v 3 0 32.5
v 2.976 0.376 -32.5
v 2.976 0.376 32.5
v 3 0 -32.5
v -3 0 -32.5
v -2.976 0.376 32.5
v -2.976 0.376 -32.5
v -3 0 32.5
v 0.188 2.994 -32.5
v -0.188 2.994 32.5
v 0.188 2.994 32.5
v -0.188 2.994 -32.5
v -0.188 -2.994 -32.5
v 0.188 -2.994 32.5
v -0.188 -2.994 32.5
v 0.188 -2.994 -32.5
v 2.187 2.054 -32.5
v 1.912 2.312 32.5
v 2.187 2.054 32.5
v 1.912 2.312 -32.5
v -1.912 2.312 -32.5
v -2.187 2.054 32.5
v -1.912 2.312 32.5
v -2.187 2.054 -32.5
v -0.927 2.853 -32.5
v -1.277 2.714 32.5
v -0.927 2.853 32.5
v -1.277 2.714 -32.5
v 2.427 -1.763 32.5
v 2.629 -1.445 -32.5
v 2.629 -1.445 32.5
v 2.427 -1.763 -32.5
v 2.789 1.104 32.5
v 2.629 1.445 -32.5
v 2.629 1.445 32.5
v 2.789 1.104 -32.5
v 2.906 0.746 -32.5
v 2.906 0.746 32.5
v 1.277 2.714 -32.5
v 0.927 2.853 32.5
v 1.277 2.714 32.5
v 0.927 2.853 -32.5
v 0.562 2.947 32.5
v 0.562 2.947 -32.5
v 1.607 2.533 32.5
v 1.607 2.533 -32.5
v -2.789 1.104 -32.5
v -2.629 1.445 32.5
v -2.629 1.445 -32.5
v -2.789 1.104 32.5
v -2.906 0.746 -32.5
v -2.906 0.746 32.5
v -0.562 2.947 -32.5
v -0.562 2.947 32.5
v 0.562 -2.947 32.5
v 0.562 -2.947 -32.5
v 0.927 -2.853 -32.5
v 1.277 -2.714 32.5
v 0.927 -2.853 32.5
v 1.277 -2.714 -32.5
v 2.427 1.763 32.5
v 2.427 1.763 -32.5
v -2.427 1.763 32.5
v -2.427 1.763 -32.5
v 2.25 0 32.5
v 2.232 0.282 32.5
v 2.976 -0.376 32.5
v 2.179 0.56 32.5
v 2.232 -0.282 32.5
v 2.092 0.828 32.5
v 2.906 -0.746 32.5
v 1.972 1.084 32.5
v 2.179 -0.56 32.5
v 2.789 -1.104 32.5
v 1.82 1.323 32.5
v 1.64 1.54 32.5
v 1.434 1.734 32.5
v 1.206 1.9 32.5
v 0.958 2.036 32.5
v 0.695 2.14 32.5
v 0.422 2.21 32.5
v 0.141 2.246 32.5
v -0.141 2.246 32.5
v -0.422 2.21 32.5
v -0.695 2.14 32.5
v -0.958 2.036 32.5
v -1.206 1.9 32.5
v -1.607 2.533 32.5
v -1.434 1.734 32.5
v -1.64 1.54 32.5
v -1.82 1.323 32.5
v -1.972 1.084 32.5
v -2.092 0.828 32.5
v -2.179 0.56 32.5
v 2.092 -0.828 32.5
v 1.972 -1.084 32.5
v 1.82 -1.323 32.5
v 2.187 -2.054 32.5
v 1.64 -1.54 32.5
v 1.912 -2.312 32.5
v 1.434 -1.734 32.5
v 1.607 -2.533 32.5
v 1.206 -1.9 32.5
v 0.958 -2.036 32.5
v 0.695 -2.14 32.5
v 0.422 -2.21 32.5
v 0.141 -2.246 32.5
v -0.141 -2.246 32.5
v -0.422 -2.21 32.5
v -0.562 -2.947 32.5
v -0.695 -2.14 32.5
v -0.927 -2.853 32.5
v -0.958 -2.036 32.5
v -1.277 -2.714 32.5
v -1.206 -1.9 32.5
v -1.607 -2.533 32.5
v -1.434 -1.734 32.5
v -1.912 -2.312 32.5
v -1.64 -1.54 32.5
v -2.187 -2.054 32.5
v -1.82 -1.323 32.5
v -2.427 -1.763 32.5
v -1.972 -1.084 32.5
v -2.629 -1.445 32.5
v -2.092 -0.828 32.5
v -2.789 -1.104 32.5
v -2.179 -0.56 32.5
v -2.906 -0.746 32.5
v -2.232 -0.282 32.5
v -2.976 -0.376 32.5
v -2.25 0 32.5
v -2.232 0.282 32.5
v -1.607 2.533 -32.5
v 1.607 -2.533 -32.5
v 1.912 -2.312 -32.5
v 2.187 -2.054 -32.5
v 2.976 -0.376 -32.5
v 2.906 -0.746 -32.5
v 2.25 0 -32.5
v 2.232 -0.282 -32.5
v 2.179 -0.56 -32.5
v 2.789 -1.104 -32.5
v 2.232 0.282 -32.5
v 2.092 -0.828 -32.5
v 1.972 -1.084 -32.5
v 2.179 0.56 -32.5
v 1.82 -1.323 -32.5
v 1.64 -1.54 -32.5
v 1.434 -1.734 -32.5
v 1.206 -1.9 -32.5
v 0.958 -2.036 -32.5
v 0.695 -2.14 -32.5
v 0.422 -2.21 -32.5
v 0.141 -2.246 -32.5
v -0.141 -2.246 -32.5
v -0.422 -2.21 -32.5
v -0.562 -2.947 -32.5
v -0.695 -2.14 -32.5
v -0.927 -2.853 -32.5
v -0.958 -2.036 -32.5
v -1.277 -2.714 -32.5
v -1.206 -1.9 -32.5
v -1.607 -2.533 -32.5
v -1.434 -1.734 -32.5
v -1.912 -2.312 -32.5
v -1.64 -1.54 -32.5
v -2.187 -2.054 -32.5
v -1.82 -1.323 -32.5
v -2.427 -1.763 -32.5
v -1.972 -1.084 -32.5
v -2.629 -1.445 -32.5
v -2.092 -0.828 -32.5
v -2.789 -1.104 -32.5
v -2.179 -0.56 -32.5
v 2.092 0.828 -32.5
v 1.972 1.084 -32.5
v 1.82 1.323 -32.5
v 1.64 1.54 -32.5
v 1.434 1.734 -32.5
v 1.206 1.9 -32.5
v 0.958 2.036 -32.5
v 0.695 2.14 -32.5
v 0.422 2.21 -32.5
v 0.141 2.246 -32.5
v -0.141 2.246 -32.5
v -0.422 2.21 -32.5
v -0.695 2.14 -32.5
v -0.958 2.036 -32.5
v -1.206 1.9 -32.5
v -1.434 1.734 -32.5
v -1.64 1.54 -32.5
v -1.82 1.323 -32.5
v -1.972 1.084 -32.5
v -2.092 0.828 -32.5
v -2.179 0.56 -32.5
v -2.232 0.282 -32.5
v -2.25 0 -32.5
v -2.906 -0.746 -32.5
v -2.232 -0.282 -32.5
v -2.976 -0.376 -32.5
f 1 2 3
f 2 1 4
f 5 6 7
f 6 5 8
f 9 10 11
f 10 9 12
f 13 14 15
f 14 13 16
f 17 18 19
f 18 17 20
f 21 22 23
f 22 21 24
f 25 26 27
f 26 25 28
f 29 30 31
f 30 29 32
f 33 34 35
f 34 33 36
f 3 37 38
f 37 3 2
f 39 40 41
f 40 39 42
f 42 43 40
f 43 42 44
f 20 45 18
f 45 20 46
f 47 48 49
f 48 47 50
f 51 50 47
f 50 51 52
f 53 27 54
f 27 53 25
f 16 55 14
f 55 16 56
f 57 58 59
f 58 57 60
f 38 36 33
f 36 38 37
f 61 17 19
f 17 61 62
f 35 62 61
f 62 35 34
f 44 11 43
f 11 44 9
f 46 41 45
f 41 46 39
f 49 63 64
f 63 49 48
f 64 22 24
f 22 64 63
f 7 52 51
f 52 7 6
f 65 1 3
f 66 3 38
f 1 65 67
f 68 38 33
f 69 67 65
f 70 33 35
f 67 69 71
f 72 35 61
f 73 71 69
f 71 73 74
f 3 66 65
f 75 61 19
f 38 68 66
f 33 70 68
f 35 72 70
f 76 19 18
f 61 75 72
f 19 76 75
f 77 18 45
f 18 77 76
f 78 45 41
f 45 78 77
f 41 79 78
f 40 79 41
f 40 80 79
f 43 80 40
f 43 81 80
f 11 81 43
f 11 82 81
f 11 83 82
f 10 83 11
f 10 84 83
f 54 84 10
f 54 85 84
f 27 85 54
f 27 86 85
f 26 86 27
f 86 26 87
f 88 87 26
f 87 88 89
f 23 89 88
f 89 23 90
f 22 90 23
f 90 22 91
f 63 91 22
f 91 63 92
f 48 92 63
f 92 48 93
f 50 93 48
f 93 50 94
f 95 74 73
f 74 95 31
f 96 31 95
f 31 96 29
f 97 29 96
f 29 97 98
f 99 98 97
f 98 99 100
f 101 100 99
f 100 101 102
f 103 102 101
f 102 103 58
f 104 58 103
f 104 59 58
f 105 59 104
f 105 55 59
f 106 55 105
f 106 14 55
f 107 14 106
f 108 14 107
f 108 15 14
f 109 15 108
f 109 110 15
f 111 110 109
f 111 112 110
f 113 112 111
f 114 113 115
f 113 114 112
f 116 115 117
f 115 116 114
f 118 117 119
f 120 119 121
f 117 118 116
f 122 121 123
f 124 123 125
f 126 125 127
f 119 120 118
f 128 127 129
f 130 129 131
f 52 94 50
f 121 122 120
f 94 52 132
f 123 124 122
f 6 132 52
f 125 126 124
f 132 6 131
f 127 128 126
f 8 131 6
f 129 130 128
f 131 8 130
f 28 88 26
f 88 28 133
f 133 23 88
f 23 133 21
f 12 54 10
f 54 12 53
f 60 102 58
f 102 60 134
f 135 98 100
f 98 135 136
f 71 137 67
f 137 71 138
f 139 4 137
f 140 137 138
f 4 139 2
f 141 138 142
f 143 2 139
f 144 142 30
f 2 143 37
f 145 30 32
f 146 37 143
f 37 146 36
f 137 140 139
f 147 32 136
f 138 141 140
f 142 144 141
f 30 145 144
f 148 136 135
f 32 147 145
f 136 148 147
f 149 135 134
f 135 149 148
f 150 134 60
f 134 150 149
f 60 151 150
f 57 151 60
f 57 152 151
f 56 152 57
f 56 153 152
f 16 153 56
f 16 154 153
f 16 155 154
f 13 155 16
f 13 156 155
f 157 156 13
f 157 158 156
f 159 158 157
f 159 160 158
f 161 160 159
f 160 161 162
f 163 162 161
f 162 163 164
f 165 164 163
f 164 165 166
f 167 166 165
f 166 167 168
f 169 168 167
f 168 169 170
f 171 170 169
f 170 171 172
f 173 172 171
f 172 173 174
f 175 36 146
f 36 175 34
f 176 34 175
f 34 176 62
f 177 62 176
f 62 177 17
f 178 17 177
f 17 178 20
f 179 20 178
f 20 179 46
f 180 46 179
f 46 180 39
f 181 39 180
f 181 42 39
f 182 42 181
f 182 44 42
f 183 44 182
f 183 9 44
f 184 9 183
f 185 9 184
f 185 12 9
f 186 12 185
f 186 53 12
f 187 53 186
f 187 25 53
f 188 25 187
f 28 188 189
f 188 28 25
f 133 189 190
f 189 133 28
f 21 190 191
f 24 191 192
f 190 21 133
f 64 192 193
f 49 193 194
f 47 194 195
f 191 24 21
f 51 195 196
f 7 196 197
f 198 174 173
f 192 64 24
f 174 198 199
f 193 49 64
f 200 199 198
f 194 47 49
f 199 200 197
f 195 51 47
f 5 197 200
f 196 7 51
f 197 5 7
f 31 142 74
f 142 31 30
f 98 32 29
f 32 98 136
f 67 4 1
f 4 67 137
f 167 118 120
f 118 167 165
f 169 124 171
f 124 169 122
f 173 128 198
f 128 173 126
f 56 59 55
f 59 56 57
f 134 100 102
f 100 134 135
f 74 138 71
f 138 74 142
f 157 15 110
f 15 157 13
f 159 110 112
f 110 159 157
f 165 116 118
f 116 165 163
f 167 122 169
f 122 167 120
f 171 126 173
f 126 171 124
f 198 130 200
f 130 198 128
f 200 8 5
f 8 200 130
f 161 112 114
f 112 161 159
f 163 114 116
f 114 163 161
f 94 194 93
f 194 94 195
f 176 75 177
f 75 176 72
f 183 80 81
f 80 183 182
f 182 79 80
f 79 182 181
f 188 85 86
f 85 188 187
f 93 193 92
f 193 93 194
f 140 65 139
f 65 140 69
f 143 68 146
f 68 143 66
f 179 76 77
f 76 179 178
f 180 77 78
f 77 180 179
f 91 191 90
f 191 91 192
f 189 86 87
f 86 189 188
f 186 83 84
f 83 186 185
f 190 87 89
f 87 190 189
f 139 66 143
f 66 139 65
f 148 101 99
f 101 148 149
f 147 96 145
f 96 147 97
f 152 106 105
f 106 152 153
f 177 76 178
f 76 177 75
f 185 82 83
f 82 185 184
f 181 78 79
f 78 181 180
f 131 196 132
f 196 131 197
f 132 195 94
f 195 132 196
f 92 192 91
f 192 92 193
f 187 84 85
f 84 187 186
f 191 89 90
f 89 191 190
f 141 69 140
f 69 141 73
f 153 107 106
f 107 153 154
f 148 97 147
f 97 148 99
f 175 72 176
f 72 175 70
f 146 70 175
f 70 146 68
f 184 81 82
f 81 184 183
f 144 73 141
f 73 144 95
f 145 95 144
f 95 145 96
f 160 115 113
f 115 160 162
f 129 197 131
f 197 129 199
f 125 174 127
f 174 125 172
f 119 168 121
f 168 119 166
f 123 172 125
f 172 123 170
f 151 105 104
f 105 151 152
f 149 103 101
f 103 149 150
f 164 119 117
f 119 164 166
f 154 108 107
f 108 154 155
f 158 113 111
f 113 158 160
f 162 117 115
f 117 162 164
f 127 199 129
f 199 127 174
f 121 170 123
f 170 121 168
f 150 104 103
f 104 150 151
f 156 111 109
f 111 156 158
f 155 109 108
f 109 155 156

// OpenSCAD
$fn = 50;


difference() {
	union() {
		translate(v = [0, 0, -32.5000000000]) {
			cylinder(h = 65, r = 3.0000000000);
		}
	}
	union() {
		translate(v = [0, 0, -100.0000000000]) {
			cylinder(h = 200, r = 2.2500000000);
		}
	}
}
